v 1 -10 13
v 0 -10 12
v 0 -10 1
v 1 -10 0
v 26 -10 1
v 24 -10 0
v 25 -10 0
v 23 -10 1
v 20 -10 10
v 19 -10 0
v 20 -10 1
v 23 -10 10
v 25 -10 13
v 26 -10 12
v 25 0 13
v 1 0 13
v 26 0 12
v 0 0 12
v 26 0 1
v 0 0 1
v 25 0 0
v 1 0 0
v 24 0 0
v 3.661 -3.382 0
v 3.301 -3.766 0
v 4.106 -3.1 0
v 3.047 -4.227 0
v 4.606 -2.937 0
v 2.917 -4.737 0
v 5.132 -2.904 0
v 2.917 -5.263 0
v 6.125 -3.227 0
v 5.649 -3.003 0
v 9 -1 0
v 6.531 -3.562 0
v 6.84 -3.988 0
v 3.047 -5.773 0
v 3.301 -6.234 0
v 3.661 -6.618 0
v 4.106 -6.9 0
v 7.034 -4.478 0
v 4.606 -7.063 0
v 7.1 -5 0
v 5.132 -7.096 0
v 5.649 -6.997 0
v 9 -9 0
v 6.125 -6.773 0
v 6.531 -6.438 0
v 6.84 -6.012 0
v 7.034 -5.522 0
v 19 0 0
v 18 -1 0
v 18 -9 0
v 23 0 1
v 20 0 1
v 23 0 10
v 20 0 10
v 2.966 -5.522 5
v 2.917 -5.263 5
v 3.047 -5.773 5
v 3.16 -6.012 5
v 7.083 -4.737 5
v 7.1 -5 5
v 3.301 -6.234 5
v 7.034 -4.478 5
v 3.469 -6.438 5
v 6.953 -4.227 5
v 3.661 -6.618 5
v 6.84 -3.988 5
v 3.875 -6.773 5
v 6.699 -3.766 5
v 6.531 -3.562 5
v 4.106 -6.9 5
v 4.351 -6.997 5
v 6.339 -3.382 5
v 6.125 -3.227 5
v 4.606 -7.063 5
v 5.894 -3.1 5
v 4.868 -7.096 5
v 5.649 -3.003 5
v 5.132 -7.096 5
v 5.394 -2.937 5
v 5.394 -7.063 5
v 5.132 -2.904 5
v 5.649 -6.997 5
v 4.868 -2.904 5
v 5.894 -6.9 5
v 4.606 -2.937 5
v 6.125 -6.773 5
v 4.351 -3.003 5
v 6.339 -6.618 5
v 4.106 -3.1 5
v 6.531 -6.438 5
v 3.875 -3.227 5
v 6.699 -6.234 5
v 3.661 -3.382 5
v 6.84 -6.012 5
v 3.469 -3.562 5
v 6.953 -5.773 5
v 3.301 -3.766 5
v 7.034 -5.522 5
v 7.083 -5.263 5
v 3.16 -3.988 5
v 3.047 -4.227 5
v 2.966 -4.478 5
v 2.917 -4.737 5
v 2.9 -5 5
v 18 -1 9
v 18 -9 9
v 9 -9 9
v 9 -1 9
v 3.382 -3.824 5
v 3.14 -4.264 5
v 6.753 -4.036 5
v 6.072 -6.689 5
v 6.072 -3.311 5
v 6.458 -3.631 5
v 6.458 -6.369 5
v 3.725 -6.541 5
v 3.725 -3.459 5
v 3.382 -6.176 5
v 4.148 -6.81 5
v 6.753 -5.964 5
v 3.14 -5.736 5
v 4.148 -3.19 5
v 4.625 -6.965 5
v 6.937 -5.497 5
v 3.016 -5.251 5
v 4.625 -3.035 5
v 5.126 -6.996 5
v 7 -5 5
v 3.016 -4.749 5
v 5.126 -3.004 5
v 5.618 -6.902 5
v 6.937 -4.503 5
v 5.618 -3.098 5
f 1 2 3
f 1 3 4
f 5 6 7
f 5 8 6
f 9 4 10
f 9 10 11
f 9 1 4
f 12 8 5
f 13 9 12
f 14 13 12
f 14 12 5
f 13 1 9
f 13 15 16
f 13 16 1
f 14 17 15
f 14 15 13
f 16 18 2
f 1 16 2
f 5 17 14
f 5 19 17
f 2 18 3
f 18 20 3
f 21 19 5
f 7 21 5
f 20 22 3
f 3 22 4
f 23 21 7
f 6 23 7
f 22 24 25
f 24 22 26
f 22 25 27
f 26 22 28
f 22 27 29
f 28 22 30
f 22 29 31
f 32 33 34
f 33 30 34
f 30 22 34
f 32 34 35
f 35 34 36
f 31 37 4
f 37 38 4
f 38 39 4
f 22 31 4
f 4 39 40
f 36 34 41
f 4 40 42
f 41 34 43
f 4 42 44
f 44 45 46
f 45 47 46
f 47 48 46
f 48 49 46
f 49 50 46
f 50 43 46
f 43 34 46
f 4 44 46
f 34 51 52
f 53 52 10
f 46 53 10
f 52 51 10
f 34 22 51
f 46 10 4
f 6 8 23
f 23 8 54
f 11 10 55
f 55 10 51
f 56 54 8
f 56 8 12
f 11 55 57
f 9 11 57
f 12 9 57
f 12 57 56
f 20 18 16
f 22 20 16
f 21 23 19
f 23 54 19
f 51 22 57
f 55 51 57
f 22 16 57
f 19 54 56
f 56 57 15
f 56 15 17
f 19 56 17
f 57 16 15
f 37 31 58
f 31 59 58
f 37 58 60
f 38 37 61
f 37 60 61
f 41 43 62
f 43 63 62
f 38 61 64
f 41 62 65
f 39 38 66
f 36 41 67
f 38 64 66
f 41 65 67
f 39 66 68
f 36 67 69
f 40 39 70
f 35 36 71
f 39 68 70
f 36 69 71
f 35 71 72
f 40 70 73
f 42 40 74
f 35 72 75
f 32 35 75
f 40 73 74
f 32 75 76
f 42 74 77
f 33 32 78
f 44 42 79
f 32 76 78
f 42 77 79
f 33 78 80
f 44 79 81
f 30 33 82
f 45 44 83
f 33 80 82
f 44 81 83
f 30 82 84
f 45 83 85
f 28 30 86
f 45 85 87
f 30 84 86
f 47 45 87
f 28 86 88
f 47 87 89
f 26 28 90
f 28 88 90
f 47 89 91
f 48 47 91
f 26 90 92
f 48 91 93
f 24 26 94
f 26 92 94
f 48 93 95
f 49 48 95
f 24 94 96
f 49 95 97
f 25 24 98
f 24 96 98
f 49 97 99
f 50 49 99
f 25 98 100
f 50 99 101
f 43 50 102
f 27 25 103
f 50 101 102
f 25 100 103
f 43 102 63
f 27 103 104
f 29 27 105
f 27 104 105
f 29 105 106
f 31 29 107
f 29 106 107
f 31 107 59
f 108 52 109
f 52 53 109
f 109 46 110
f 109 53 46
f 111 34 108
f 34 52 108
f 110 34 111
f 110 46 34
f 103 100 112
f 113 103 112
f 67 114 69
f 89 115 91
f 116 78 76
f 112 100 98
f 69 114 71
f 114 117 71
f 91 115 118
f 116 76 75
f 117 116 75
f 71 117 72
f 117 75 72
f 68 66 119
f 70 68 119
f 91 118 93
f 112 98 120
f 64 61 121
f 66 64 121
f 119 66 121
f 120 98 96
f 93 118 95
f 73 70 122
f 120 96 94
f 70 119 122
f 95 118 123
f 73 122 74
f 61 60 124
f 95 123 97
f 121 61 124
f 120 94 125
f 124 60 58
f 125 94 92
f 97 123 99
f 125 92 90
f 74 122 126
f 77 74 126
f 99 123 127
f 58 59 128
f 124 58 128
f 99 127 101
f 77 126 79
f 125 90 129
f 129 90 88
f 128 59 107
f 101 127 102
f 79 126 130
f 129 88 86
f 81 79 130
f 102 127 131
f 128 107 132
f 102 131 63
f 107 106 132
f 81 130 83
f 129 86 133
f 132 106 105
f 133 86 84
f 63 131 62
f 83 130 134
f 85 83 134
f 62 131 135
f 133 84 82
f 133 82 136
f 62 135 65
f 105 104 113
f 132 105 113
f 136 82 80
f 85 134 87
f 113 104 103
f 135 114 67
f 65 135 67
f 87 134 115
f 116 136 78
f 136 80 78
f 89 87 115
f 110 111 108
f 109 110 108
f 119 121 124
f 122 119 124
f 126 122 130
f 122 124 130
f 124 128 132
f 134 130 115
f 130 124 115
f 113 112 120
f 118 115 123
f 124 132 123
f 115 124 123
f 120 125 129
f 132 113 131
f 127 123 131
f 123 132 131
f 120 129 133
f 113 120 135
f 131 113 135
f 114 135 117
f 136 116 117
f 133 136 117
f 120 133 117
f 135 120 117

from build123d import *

# Parameters (mm, degrees)
CYLINDER001_R     = 2.1
CYLINDER001_DEPTH = 10
BOX002_W          = 9
BOX002_H          = 8
BOX002_DEPTH      = 10
BOX001_W          = 3
BOX001_H          = 12
BOX001_DEPTH      = 11
CYLINDER_R        = 2
CYLINDER_DEPTH    = 10
BOX_W             = 26
BOX_H             = 13
BOX_DEPTH         = 10
BOX_ROLL_ANGLE    = 90
CHAMFER_SIZE      = 1
CHAMFER001_SIZE   = 1
CHAMFER002_SIZE   = 1
CHAMFER003_SIZE   = 1
CHAMFER004_SIZE   = 1


with BuildPart() as cylinder001:
    # Cylinder001 → Cylinder001 (new body)
    with BuildSketch(Plane(origin=(5, -5, -5), x_dir=(1, 0, 0), z_dir=(0, 0, 1))):
        Circle(CYLINDER001_R)
    extrude(amount=CYLINDER001_DEPTH)


with BuildPart() as cube002:
    # Box002 → Box002 (new body)
    with BuildSketch(Plane(origin=(9, -9, -1), x_dir=(1, 0, 0), z_dir=(0, 0, 1))):
        with Locations((4.5, 4)):
            Rectangle(BOX002_W, BOX002_H)
    extrude(amount=BOX002_DEPTH)


with BuildPart() as cube001:
    # Box001 → Box001 (new body)
    with BuildSketch(Plane(origin=(20, -11, -1), x_dir=(1, 0, 0), z_dir=(0, 0, 1))):
        with Locations((1.5, 6)):
            Rectangle(BOX001_W, BOX001_H)
    extrude(amount=BOX001_DEPTH)


with BuildPart() as cylinder:
    # Cylinder → Cylinder (new body)
    with BuildSketch(Plane(origin=(5, -5, -5), x_dir=(1, 0, 0), z_dir=(0, 0, 1))):
        Circle(CYLINDER_R)
    extrude(amount=CYLINDER_DEPTH)


with BuildPart() as cut003:
    # Box → Box (new body)
    with BuildSketch(Plane.XY):
        with Locations((13, 6.5)):
            Rectangle(BOX_W, BOX_H)
    extrude(amount=BOX_DEPTH)


with BuildPart() as cut003_1:
    # Box roll: moved
    add(cut003.part.rotate(Axis((0, 0, 0), (1, 0, 0)), BOX_ROLL_ANGLE))


with BuildPart() as cut003_2:
    # Box placement: moved
    add(cut003_1.part)

    # Cut: cut Cylinder
    add(cylinder.part, mode=Mode.SUBTRACT)

    # Cut001: cut Cube001
    add(cube001.part, mode=Mode.SUBTRACT)

    # Chamfer
    chamfer_edges = [cut003_2.edges().sort_by_distance(p)[0] for p in [
        (0, -5, 0),
        (23, -5, 0),
    ]]
    chamfer(chamfer_edges, length=CHAMFER_SIZE)

    # Chamfer001
    chamfer001_edges = [cut003_2.edges().sort_by_distance(p)[0] for p in [
        (20, -5, 0),
    ]]
    chamfer(chamfer001_edges, length=CHAMFER001_SIZE)

    # Chamfer002
    chamfer002_edges = [cut003_2.edges().sort_by_distance(p)[0] for p in [
        (26, -5, 0),
    ]]
    chamfer(chamfer002_edges, length=CHAMFER002_SIZE)

    # Chamfer003
    chamfer003_edges = [cut003_2.edges().sort_by_distance(p)[0] for p in [
        (0, -5, 13),
    ]]
    chamfer(chamfer003_edges, length=CHAMFER003_SIZE)

    # Chamfer004
    chamfer004_edges = [cut003_2.edges().sort_by_distance(p)[0] for p in [
        (26, -5, 13),
    ]]
    chamfer(chamfer004_edges, length=CHAMFER004_SIZE)

    # Cut002: cut Cube002
    add(cube002.part, mode=Mode.SUBTRACT)

    # Cut003: cut Cylinder001
    add(cylinder001.part, mode=Mode.SUBTRACT)


solid = cut003_2.part
